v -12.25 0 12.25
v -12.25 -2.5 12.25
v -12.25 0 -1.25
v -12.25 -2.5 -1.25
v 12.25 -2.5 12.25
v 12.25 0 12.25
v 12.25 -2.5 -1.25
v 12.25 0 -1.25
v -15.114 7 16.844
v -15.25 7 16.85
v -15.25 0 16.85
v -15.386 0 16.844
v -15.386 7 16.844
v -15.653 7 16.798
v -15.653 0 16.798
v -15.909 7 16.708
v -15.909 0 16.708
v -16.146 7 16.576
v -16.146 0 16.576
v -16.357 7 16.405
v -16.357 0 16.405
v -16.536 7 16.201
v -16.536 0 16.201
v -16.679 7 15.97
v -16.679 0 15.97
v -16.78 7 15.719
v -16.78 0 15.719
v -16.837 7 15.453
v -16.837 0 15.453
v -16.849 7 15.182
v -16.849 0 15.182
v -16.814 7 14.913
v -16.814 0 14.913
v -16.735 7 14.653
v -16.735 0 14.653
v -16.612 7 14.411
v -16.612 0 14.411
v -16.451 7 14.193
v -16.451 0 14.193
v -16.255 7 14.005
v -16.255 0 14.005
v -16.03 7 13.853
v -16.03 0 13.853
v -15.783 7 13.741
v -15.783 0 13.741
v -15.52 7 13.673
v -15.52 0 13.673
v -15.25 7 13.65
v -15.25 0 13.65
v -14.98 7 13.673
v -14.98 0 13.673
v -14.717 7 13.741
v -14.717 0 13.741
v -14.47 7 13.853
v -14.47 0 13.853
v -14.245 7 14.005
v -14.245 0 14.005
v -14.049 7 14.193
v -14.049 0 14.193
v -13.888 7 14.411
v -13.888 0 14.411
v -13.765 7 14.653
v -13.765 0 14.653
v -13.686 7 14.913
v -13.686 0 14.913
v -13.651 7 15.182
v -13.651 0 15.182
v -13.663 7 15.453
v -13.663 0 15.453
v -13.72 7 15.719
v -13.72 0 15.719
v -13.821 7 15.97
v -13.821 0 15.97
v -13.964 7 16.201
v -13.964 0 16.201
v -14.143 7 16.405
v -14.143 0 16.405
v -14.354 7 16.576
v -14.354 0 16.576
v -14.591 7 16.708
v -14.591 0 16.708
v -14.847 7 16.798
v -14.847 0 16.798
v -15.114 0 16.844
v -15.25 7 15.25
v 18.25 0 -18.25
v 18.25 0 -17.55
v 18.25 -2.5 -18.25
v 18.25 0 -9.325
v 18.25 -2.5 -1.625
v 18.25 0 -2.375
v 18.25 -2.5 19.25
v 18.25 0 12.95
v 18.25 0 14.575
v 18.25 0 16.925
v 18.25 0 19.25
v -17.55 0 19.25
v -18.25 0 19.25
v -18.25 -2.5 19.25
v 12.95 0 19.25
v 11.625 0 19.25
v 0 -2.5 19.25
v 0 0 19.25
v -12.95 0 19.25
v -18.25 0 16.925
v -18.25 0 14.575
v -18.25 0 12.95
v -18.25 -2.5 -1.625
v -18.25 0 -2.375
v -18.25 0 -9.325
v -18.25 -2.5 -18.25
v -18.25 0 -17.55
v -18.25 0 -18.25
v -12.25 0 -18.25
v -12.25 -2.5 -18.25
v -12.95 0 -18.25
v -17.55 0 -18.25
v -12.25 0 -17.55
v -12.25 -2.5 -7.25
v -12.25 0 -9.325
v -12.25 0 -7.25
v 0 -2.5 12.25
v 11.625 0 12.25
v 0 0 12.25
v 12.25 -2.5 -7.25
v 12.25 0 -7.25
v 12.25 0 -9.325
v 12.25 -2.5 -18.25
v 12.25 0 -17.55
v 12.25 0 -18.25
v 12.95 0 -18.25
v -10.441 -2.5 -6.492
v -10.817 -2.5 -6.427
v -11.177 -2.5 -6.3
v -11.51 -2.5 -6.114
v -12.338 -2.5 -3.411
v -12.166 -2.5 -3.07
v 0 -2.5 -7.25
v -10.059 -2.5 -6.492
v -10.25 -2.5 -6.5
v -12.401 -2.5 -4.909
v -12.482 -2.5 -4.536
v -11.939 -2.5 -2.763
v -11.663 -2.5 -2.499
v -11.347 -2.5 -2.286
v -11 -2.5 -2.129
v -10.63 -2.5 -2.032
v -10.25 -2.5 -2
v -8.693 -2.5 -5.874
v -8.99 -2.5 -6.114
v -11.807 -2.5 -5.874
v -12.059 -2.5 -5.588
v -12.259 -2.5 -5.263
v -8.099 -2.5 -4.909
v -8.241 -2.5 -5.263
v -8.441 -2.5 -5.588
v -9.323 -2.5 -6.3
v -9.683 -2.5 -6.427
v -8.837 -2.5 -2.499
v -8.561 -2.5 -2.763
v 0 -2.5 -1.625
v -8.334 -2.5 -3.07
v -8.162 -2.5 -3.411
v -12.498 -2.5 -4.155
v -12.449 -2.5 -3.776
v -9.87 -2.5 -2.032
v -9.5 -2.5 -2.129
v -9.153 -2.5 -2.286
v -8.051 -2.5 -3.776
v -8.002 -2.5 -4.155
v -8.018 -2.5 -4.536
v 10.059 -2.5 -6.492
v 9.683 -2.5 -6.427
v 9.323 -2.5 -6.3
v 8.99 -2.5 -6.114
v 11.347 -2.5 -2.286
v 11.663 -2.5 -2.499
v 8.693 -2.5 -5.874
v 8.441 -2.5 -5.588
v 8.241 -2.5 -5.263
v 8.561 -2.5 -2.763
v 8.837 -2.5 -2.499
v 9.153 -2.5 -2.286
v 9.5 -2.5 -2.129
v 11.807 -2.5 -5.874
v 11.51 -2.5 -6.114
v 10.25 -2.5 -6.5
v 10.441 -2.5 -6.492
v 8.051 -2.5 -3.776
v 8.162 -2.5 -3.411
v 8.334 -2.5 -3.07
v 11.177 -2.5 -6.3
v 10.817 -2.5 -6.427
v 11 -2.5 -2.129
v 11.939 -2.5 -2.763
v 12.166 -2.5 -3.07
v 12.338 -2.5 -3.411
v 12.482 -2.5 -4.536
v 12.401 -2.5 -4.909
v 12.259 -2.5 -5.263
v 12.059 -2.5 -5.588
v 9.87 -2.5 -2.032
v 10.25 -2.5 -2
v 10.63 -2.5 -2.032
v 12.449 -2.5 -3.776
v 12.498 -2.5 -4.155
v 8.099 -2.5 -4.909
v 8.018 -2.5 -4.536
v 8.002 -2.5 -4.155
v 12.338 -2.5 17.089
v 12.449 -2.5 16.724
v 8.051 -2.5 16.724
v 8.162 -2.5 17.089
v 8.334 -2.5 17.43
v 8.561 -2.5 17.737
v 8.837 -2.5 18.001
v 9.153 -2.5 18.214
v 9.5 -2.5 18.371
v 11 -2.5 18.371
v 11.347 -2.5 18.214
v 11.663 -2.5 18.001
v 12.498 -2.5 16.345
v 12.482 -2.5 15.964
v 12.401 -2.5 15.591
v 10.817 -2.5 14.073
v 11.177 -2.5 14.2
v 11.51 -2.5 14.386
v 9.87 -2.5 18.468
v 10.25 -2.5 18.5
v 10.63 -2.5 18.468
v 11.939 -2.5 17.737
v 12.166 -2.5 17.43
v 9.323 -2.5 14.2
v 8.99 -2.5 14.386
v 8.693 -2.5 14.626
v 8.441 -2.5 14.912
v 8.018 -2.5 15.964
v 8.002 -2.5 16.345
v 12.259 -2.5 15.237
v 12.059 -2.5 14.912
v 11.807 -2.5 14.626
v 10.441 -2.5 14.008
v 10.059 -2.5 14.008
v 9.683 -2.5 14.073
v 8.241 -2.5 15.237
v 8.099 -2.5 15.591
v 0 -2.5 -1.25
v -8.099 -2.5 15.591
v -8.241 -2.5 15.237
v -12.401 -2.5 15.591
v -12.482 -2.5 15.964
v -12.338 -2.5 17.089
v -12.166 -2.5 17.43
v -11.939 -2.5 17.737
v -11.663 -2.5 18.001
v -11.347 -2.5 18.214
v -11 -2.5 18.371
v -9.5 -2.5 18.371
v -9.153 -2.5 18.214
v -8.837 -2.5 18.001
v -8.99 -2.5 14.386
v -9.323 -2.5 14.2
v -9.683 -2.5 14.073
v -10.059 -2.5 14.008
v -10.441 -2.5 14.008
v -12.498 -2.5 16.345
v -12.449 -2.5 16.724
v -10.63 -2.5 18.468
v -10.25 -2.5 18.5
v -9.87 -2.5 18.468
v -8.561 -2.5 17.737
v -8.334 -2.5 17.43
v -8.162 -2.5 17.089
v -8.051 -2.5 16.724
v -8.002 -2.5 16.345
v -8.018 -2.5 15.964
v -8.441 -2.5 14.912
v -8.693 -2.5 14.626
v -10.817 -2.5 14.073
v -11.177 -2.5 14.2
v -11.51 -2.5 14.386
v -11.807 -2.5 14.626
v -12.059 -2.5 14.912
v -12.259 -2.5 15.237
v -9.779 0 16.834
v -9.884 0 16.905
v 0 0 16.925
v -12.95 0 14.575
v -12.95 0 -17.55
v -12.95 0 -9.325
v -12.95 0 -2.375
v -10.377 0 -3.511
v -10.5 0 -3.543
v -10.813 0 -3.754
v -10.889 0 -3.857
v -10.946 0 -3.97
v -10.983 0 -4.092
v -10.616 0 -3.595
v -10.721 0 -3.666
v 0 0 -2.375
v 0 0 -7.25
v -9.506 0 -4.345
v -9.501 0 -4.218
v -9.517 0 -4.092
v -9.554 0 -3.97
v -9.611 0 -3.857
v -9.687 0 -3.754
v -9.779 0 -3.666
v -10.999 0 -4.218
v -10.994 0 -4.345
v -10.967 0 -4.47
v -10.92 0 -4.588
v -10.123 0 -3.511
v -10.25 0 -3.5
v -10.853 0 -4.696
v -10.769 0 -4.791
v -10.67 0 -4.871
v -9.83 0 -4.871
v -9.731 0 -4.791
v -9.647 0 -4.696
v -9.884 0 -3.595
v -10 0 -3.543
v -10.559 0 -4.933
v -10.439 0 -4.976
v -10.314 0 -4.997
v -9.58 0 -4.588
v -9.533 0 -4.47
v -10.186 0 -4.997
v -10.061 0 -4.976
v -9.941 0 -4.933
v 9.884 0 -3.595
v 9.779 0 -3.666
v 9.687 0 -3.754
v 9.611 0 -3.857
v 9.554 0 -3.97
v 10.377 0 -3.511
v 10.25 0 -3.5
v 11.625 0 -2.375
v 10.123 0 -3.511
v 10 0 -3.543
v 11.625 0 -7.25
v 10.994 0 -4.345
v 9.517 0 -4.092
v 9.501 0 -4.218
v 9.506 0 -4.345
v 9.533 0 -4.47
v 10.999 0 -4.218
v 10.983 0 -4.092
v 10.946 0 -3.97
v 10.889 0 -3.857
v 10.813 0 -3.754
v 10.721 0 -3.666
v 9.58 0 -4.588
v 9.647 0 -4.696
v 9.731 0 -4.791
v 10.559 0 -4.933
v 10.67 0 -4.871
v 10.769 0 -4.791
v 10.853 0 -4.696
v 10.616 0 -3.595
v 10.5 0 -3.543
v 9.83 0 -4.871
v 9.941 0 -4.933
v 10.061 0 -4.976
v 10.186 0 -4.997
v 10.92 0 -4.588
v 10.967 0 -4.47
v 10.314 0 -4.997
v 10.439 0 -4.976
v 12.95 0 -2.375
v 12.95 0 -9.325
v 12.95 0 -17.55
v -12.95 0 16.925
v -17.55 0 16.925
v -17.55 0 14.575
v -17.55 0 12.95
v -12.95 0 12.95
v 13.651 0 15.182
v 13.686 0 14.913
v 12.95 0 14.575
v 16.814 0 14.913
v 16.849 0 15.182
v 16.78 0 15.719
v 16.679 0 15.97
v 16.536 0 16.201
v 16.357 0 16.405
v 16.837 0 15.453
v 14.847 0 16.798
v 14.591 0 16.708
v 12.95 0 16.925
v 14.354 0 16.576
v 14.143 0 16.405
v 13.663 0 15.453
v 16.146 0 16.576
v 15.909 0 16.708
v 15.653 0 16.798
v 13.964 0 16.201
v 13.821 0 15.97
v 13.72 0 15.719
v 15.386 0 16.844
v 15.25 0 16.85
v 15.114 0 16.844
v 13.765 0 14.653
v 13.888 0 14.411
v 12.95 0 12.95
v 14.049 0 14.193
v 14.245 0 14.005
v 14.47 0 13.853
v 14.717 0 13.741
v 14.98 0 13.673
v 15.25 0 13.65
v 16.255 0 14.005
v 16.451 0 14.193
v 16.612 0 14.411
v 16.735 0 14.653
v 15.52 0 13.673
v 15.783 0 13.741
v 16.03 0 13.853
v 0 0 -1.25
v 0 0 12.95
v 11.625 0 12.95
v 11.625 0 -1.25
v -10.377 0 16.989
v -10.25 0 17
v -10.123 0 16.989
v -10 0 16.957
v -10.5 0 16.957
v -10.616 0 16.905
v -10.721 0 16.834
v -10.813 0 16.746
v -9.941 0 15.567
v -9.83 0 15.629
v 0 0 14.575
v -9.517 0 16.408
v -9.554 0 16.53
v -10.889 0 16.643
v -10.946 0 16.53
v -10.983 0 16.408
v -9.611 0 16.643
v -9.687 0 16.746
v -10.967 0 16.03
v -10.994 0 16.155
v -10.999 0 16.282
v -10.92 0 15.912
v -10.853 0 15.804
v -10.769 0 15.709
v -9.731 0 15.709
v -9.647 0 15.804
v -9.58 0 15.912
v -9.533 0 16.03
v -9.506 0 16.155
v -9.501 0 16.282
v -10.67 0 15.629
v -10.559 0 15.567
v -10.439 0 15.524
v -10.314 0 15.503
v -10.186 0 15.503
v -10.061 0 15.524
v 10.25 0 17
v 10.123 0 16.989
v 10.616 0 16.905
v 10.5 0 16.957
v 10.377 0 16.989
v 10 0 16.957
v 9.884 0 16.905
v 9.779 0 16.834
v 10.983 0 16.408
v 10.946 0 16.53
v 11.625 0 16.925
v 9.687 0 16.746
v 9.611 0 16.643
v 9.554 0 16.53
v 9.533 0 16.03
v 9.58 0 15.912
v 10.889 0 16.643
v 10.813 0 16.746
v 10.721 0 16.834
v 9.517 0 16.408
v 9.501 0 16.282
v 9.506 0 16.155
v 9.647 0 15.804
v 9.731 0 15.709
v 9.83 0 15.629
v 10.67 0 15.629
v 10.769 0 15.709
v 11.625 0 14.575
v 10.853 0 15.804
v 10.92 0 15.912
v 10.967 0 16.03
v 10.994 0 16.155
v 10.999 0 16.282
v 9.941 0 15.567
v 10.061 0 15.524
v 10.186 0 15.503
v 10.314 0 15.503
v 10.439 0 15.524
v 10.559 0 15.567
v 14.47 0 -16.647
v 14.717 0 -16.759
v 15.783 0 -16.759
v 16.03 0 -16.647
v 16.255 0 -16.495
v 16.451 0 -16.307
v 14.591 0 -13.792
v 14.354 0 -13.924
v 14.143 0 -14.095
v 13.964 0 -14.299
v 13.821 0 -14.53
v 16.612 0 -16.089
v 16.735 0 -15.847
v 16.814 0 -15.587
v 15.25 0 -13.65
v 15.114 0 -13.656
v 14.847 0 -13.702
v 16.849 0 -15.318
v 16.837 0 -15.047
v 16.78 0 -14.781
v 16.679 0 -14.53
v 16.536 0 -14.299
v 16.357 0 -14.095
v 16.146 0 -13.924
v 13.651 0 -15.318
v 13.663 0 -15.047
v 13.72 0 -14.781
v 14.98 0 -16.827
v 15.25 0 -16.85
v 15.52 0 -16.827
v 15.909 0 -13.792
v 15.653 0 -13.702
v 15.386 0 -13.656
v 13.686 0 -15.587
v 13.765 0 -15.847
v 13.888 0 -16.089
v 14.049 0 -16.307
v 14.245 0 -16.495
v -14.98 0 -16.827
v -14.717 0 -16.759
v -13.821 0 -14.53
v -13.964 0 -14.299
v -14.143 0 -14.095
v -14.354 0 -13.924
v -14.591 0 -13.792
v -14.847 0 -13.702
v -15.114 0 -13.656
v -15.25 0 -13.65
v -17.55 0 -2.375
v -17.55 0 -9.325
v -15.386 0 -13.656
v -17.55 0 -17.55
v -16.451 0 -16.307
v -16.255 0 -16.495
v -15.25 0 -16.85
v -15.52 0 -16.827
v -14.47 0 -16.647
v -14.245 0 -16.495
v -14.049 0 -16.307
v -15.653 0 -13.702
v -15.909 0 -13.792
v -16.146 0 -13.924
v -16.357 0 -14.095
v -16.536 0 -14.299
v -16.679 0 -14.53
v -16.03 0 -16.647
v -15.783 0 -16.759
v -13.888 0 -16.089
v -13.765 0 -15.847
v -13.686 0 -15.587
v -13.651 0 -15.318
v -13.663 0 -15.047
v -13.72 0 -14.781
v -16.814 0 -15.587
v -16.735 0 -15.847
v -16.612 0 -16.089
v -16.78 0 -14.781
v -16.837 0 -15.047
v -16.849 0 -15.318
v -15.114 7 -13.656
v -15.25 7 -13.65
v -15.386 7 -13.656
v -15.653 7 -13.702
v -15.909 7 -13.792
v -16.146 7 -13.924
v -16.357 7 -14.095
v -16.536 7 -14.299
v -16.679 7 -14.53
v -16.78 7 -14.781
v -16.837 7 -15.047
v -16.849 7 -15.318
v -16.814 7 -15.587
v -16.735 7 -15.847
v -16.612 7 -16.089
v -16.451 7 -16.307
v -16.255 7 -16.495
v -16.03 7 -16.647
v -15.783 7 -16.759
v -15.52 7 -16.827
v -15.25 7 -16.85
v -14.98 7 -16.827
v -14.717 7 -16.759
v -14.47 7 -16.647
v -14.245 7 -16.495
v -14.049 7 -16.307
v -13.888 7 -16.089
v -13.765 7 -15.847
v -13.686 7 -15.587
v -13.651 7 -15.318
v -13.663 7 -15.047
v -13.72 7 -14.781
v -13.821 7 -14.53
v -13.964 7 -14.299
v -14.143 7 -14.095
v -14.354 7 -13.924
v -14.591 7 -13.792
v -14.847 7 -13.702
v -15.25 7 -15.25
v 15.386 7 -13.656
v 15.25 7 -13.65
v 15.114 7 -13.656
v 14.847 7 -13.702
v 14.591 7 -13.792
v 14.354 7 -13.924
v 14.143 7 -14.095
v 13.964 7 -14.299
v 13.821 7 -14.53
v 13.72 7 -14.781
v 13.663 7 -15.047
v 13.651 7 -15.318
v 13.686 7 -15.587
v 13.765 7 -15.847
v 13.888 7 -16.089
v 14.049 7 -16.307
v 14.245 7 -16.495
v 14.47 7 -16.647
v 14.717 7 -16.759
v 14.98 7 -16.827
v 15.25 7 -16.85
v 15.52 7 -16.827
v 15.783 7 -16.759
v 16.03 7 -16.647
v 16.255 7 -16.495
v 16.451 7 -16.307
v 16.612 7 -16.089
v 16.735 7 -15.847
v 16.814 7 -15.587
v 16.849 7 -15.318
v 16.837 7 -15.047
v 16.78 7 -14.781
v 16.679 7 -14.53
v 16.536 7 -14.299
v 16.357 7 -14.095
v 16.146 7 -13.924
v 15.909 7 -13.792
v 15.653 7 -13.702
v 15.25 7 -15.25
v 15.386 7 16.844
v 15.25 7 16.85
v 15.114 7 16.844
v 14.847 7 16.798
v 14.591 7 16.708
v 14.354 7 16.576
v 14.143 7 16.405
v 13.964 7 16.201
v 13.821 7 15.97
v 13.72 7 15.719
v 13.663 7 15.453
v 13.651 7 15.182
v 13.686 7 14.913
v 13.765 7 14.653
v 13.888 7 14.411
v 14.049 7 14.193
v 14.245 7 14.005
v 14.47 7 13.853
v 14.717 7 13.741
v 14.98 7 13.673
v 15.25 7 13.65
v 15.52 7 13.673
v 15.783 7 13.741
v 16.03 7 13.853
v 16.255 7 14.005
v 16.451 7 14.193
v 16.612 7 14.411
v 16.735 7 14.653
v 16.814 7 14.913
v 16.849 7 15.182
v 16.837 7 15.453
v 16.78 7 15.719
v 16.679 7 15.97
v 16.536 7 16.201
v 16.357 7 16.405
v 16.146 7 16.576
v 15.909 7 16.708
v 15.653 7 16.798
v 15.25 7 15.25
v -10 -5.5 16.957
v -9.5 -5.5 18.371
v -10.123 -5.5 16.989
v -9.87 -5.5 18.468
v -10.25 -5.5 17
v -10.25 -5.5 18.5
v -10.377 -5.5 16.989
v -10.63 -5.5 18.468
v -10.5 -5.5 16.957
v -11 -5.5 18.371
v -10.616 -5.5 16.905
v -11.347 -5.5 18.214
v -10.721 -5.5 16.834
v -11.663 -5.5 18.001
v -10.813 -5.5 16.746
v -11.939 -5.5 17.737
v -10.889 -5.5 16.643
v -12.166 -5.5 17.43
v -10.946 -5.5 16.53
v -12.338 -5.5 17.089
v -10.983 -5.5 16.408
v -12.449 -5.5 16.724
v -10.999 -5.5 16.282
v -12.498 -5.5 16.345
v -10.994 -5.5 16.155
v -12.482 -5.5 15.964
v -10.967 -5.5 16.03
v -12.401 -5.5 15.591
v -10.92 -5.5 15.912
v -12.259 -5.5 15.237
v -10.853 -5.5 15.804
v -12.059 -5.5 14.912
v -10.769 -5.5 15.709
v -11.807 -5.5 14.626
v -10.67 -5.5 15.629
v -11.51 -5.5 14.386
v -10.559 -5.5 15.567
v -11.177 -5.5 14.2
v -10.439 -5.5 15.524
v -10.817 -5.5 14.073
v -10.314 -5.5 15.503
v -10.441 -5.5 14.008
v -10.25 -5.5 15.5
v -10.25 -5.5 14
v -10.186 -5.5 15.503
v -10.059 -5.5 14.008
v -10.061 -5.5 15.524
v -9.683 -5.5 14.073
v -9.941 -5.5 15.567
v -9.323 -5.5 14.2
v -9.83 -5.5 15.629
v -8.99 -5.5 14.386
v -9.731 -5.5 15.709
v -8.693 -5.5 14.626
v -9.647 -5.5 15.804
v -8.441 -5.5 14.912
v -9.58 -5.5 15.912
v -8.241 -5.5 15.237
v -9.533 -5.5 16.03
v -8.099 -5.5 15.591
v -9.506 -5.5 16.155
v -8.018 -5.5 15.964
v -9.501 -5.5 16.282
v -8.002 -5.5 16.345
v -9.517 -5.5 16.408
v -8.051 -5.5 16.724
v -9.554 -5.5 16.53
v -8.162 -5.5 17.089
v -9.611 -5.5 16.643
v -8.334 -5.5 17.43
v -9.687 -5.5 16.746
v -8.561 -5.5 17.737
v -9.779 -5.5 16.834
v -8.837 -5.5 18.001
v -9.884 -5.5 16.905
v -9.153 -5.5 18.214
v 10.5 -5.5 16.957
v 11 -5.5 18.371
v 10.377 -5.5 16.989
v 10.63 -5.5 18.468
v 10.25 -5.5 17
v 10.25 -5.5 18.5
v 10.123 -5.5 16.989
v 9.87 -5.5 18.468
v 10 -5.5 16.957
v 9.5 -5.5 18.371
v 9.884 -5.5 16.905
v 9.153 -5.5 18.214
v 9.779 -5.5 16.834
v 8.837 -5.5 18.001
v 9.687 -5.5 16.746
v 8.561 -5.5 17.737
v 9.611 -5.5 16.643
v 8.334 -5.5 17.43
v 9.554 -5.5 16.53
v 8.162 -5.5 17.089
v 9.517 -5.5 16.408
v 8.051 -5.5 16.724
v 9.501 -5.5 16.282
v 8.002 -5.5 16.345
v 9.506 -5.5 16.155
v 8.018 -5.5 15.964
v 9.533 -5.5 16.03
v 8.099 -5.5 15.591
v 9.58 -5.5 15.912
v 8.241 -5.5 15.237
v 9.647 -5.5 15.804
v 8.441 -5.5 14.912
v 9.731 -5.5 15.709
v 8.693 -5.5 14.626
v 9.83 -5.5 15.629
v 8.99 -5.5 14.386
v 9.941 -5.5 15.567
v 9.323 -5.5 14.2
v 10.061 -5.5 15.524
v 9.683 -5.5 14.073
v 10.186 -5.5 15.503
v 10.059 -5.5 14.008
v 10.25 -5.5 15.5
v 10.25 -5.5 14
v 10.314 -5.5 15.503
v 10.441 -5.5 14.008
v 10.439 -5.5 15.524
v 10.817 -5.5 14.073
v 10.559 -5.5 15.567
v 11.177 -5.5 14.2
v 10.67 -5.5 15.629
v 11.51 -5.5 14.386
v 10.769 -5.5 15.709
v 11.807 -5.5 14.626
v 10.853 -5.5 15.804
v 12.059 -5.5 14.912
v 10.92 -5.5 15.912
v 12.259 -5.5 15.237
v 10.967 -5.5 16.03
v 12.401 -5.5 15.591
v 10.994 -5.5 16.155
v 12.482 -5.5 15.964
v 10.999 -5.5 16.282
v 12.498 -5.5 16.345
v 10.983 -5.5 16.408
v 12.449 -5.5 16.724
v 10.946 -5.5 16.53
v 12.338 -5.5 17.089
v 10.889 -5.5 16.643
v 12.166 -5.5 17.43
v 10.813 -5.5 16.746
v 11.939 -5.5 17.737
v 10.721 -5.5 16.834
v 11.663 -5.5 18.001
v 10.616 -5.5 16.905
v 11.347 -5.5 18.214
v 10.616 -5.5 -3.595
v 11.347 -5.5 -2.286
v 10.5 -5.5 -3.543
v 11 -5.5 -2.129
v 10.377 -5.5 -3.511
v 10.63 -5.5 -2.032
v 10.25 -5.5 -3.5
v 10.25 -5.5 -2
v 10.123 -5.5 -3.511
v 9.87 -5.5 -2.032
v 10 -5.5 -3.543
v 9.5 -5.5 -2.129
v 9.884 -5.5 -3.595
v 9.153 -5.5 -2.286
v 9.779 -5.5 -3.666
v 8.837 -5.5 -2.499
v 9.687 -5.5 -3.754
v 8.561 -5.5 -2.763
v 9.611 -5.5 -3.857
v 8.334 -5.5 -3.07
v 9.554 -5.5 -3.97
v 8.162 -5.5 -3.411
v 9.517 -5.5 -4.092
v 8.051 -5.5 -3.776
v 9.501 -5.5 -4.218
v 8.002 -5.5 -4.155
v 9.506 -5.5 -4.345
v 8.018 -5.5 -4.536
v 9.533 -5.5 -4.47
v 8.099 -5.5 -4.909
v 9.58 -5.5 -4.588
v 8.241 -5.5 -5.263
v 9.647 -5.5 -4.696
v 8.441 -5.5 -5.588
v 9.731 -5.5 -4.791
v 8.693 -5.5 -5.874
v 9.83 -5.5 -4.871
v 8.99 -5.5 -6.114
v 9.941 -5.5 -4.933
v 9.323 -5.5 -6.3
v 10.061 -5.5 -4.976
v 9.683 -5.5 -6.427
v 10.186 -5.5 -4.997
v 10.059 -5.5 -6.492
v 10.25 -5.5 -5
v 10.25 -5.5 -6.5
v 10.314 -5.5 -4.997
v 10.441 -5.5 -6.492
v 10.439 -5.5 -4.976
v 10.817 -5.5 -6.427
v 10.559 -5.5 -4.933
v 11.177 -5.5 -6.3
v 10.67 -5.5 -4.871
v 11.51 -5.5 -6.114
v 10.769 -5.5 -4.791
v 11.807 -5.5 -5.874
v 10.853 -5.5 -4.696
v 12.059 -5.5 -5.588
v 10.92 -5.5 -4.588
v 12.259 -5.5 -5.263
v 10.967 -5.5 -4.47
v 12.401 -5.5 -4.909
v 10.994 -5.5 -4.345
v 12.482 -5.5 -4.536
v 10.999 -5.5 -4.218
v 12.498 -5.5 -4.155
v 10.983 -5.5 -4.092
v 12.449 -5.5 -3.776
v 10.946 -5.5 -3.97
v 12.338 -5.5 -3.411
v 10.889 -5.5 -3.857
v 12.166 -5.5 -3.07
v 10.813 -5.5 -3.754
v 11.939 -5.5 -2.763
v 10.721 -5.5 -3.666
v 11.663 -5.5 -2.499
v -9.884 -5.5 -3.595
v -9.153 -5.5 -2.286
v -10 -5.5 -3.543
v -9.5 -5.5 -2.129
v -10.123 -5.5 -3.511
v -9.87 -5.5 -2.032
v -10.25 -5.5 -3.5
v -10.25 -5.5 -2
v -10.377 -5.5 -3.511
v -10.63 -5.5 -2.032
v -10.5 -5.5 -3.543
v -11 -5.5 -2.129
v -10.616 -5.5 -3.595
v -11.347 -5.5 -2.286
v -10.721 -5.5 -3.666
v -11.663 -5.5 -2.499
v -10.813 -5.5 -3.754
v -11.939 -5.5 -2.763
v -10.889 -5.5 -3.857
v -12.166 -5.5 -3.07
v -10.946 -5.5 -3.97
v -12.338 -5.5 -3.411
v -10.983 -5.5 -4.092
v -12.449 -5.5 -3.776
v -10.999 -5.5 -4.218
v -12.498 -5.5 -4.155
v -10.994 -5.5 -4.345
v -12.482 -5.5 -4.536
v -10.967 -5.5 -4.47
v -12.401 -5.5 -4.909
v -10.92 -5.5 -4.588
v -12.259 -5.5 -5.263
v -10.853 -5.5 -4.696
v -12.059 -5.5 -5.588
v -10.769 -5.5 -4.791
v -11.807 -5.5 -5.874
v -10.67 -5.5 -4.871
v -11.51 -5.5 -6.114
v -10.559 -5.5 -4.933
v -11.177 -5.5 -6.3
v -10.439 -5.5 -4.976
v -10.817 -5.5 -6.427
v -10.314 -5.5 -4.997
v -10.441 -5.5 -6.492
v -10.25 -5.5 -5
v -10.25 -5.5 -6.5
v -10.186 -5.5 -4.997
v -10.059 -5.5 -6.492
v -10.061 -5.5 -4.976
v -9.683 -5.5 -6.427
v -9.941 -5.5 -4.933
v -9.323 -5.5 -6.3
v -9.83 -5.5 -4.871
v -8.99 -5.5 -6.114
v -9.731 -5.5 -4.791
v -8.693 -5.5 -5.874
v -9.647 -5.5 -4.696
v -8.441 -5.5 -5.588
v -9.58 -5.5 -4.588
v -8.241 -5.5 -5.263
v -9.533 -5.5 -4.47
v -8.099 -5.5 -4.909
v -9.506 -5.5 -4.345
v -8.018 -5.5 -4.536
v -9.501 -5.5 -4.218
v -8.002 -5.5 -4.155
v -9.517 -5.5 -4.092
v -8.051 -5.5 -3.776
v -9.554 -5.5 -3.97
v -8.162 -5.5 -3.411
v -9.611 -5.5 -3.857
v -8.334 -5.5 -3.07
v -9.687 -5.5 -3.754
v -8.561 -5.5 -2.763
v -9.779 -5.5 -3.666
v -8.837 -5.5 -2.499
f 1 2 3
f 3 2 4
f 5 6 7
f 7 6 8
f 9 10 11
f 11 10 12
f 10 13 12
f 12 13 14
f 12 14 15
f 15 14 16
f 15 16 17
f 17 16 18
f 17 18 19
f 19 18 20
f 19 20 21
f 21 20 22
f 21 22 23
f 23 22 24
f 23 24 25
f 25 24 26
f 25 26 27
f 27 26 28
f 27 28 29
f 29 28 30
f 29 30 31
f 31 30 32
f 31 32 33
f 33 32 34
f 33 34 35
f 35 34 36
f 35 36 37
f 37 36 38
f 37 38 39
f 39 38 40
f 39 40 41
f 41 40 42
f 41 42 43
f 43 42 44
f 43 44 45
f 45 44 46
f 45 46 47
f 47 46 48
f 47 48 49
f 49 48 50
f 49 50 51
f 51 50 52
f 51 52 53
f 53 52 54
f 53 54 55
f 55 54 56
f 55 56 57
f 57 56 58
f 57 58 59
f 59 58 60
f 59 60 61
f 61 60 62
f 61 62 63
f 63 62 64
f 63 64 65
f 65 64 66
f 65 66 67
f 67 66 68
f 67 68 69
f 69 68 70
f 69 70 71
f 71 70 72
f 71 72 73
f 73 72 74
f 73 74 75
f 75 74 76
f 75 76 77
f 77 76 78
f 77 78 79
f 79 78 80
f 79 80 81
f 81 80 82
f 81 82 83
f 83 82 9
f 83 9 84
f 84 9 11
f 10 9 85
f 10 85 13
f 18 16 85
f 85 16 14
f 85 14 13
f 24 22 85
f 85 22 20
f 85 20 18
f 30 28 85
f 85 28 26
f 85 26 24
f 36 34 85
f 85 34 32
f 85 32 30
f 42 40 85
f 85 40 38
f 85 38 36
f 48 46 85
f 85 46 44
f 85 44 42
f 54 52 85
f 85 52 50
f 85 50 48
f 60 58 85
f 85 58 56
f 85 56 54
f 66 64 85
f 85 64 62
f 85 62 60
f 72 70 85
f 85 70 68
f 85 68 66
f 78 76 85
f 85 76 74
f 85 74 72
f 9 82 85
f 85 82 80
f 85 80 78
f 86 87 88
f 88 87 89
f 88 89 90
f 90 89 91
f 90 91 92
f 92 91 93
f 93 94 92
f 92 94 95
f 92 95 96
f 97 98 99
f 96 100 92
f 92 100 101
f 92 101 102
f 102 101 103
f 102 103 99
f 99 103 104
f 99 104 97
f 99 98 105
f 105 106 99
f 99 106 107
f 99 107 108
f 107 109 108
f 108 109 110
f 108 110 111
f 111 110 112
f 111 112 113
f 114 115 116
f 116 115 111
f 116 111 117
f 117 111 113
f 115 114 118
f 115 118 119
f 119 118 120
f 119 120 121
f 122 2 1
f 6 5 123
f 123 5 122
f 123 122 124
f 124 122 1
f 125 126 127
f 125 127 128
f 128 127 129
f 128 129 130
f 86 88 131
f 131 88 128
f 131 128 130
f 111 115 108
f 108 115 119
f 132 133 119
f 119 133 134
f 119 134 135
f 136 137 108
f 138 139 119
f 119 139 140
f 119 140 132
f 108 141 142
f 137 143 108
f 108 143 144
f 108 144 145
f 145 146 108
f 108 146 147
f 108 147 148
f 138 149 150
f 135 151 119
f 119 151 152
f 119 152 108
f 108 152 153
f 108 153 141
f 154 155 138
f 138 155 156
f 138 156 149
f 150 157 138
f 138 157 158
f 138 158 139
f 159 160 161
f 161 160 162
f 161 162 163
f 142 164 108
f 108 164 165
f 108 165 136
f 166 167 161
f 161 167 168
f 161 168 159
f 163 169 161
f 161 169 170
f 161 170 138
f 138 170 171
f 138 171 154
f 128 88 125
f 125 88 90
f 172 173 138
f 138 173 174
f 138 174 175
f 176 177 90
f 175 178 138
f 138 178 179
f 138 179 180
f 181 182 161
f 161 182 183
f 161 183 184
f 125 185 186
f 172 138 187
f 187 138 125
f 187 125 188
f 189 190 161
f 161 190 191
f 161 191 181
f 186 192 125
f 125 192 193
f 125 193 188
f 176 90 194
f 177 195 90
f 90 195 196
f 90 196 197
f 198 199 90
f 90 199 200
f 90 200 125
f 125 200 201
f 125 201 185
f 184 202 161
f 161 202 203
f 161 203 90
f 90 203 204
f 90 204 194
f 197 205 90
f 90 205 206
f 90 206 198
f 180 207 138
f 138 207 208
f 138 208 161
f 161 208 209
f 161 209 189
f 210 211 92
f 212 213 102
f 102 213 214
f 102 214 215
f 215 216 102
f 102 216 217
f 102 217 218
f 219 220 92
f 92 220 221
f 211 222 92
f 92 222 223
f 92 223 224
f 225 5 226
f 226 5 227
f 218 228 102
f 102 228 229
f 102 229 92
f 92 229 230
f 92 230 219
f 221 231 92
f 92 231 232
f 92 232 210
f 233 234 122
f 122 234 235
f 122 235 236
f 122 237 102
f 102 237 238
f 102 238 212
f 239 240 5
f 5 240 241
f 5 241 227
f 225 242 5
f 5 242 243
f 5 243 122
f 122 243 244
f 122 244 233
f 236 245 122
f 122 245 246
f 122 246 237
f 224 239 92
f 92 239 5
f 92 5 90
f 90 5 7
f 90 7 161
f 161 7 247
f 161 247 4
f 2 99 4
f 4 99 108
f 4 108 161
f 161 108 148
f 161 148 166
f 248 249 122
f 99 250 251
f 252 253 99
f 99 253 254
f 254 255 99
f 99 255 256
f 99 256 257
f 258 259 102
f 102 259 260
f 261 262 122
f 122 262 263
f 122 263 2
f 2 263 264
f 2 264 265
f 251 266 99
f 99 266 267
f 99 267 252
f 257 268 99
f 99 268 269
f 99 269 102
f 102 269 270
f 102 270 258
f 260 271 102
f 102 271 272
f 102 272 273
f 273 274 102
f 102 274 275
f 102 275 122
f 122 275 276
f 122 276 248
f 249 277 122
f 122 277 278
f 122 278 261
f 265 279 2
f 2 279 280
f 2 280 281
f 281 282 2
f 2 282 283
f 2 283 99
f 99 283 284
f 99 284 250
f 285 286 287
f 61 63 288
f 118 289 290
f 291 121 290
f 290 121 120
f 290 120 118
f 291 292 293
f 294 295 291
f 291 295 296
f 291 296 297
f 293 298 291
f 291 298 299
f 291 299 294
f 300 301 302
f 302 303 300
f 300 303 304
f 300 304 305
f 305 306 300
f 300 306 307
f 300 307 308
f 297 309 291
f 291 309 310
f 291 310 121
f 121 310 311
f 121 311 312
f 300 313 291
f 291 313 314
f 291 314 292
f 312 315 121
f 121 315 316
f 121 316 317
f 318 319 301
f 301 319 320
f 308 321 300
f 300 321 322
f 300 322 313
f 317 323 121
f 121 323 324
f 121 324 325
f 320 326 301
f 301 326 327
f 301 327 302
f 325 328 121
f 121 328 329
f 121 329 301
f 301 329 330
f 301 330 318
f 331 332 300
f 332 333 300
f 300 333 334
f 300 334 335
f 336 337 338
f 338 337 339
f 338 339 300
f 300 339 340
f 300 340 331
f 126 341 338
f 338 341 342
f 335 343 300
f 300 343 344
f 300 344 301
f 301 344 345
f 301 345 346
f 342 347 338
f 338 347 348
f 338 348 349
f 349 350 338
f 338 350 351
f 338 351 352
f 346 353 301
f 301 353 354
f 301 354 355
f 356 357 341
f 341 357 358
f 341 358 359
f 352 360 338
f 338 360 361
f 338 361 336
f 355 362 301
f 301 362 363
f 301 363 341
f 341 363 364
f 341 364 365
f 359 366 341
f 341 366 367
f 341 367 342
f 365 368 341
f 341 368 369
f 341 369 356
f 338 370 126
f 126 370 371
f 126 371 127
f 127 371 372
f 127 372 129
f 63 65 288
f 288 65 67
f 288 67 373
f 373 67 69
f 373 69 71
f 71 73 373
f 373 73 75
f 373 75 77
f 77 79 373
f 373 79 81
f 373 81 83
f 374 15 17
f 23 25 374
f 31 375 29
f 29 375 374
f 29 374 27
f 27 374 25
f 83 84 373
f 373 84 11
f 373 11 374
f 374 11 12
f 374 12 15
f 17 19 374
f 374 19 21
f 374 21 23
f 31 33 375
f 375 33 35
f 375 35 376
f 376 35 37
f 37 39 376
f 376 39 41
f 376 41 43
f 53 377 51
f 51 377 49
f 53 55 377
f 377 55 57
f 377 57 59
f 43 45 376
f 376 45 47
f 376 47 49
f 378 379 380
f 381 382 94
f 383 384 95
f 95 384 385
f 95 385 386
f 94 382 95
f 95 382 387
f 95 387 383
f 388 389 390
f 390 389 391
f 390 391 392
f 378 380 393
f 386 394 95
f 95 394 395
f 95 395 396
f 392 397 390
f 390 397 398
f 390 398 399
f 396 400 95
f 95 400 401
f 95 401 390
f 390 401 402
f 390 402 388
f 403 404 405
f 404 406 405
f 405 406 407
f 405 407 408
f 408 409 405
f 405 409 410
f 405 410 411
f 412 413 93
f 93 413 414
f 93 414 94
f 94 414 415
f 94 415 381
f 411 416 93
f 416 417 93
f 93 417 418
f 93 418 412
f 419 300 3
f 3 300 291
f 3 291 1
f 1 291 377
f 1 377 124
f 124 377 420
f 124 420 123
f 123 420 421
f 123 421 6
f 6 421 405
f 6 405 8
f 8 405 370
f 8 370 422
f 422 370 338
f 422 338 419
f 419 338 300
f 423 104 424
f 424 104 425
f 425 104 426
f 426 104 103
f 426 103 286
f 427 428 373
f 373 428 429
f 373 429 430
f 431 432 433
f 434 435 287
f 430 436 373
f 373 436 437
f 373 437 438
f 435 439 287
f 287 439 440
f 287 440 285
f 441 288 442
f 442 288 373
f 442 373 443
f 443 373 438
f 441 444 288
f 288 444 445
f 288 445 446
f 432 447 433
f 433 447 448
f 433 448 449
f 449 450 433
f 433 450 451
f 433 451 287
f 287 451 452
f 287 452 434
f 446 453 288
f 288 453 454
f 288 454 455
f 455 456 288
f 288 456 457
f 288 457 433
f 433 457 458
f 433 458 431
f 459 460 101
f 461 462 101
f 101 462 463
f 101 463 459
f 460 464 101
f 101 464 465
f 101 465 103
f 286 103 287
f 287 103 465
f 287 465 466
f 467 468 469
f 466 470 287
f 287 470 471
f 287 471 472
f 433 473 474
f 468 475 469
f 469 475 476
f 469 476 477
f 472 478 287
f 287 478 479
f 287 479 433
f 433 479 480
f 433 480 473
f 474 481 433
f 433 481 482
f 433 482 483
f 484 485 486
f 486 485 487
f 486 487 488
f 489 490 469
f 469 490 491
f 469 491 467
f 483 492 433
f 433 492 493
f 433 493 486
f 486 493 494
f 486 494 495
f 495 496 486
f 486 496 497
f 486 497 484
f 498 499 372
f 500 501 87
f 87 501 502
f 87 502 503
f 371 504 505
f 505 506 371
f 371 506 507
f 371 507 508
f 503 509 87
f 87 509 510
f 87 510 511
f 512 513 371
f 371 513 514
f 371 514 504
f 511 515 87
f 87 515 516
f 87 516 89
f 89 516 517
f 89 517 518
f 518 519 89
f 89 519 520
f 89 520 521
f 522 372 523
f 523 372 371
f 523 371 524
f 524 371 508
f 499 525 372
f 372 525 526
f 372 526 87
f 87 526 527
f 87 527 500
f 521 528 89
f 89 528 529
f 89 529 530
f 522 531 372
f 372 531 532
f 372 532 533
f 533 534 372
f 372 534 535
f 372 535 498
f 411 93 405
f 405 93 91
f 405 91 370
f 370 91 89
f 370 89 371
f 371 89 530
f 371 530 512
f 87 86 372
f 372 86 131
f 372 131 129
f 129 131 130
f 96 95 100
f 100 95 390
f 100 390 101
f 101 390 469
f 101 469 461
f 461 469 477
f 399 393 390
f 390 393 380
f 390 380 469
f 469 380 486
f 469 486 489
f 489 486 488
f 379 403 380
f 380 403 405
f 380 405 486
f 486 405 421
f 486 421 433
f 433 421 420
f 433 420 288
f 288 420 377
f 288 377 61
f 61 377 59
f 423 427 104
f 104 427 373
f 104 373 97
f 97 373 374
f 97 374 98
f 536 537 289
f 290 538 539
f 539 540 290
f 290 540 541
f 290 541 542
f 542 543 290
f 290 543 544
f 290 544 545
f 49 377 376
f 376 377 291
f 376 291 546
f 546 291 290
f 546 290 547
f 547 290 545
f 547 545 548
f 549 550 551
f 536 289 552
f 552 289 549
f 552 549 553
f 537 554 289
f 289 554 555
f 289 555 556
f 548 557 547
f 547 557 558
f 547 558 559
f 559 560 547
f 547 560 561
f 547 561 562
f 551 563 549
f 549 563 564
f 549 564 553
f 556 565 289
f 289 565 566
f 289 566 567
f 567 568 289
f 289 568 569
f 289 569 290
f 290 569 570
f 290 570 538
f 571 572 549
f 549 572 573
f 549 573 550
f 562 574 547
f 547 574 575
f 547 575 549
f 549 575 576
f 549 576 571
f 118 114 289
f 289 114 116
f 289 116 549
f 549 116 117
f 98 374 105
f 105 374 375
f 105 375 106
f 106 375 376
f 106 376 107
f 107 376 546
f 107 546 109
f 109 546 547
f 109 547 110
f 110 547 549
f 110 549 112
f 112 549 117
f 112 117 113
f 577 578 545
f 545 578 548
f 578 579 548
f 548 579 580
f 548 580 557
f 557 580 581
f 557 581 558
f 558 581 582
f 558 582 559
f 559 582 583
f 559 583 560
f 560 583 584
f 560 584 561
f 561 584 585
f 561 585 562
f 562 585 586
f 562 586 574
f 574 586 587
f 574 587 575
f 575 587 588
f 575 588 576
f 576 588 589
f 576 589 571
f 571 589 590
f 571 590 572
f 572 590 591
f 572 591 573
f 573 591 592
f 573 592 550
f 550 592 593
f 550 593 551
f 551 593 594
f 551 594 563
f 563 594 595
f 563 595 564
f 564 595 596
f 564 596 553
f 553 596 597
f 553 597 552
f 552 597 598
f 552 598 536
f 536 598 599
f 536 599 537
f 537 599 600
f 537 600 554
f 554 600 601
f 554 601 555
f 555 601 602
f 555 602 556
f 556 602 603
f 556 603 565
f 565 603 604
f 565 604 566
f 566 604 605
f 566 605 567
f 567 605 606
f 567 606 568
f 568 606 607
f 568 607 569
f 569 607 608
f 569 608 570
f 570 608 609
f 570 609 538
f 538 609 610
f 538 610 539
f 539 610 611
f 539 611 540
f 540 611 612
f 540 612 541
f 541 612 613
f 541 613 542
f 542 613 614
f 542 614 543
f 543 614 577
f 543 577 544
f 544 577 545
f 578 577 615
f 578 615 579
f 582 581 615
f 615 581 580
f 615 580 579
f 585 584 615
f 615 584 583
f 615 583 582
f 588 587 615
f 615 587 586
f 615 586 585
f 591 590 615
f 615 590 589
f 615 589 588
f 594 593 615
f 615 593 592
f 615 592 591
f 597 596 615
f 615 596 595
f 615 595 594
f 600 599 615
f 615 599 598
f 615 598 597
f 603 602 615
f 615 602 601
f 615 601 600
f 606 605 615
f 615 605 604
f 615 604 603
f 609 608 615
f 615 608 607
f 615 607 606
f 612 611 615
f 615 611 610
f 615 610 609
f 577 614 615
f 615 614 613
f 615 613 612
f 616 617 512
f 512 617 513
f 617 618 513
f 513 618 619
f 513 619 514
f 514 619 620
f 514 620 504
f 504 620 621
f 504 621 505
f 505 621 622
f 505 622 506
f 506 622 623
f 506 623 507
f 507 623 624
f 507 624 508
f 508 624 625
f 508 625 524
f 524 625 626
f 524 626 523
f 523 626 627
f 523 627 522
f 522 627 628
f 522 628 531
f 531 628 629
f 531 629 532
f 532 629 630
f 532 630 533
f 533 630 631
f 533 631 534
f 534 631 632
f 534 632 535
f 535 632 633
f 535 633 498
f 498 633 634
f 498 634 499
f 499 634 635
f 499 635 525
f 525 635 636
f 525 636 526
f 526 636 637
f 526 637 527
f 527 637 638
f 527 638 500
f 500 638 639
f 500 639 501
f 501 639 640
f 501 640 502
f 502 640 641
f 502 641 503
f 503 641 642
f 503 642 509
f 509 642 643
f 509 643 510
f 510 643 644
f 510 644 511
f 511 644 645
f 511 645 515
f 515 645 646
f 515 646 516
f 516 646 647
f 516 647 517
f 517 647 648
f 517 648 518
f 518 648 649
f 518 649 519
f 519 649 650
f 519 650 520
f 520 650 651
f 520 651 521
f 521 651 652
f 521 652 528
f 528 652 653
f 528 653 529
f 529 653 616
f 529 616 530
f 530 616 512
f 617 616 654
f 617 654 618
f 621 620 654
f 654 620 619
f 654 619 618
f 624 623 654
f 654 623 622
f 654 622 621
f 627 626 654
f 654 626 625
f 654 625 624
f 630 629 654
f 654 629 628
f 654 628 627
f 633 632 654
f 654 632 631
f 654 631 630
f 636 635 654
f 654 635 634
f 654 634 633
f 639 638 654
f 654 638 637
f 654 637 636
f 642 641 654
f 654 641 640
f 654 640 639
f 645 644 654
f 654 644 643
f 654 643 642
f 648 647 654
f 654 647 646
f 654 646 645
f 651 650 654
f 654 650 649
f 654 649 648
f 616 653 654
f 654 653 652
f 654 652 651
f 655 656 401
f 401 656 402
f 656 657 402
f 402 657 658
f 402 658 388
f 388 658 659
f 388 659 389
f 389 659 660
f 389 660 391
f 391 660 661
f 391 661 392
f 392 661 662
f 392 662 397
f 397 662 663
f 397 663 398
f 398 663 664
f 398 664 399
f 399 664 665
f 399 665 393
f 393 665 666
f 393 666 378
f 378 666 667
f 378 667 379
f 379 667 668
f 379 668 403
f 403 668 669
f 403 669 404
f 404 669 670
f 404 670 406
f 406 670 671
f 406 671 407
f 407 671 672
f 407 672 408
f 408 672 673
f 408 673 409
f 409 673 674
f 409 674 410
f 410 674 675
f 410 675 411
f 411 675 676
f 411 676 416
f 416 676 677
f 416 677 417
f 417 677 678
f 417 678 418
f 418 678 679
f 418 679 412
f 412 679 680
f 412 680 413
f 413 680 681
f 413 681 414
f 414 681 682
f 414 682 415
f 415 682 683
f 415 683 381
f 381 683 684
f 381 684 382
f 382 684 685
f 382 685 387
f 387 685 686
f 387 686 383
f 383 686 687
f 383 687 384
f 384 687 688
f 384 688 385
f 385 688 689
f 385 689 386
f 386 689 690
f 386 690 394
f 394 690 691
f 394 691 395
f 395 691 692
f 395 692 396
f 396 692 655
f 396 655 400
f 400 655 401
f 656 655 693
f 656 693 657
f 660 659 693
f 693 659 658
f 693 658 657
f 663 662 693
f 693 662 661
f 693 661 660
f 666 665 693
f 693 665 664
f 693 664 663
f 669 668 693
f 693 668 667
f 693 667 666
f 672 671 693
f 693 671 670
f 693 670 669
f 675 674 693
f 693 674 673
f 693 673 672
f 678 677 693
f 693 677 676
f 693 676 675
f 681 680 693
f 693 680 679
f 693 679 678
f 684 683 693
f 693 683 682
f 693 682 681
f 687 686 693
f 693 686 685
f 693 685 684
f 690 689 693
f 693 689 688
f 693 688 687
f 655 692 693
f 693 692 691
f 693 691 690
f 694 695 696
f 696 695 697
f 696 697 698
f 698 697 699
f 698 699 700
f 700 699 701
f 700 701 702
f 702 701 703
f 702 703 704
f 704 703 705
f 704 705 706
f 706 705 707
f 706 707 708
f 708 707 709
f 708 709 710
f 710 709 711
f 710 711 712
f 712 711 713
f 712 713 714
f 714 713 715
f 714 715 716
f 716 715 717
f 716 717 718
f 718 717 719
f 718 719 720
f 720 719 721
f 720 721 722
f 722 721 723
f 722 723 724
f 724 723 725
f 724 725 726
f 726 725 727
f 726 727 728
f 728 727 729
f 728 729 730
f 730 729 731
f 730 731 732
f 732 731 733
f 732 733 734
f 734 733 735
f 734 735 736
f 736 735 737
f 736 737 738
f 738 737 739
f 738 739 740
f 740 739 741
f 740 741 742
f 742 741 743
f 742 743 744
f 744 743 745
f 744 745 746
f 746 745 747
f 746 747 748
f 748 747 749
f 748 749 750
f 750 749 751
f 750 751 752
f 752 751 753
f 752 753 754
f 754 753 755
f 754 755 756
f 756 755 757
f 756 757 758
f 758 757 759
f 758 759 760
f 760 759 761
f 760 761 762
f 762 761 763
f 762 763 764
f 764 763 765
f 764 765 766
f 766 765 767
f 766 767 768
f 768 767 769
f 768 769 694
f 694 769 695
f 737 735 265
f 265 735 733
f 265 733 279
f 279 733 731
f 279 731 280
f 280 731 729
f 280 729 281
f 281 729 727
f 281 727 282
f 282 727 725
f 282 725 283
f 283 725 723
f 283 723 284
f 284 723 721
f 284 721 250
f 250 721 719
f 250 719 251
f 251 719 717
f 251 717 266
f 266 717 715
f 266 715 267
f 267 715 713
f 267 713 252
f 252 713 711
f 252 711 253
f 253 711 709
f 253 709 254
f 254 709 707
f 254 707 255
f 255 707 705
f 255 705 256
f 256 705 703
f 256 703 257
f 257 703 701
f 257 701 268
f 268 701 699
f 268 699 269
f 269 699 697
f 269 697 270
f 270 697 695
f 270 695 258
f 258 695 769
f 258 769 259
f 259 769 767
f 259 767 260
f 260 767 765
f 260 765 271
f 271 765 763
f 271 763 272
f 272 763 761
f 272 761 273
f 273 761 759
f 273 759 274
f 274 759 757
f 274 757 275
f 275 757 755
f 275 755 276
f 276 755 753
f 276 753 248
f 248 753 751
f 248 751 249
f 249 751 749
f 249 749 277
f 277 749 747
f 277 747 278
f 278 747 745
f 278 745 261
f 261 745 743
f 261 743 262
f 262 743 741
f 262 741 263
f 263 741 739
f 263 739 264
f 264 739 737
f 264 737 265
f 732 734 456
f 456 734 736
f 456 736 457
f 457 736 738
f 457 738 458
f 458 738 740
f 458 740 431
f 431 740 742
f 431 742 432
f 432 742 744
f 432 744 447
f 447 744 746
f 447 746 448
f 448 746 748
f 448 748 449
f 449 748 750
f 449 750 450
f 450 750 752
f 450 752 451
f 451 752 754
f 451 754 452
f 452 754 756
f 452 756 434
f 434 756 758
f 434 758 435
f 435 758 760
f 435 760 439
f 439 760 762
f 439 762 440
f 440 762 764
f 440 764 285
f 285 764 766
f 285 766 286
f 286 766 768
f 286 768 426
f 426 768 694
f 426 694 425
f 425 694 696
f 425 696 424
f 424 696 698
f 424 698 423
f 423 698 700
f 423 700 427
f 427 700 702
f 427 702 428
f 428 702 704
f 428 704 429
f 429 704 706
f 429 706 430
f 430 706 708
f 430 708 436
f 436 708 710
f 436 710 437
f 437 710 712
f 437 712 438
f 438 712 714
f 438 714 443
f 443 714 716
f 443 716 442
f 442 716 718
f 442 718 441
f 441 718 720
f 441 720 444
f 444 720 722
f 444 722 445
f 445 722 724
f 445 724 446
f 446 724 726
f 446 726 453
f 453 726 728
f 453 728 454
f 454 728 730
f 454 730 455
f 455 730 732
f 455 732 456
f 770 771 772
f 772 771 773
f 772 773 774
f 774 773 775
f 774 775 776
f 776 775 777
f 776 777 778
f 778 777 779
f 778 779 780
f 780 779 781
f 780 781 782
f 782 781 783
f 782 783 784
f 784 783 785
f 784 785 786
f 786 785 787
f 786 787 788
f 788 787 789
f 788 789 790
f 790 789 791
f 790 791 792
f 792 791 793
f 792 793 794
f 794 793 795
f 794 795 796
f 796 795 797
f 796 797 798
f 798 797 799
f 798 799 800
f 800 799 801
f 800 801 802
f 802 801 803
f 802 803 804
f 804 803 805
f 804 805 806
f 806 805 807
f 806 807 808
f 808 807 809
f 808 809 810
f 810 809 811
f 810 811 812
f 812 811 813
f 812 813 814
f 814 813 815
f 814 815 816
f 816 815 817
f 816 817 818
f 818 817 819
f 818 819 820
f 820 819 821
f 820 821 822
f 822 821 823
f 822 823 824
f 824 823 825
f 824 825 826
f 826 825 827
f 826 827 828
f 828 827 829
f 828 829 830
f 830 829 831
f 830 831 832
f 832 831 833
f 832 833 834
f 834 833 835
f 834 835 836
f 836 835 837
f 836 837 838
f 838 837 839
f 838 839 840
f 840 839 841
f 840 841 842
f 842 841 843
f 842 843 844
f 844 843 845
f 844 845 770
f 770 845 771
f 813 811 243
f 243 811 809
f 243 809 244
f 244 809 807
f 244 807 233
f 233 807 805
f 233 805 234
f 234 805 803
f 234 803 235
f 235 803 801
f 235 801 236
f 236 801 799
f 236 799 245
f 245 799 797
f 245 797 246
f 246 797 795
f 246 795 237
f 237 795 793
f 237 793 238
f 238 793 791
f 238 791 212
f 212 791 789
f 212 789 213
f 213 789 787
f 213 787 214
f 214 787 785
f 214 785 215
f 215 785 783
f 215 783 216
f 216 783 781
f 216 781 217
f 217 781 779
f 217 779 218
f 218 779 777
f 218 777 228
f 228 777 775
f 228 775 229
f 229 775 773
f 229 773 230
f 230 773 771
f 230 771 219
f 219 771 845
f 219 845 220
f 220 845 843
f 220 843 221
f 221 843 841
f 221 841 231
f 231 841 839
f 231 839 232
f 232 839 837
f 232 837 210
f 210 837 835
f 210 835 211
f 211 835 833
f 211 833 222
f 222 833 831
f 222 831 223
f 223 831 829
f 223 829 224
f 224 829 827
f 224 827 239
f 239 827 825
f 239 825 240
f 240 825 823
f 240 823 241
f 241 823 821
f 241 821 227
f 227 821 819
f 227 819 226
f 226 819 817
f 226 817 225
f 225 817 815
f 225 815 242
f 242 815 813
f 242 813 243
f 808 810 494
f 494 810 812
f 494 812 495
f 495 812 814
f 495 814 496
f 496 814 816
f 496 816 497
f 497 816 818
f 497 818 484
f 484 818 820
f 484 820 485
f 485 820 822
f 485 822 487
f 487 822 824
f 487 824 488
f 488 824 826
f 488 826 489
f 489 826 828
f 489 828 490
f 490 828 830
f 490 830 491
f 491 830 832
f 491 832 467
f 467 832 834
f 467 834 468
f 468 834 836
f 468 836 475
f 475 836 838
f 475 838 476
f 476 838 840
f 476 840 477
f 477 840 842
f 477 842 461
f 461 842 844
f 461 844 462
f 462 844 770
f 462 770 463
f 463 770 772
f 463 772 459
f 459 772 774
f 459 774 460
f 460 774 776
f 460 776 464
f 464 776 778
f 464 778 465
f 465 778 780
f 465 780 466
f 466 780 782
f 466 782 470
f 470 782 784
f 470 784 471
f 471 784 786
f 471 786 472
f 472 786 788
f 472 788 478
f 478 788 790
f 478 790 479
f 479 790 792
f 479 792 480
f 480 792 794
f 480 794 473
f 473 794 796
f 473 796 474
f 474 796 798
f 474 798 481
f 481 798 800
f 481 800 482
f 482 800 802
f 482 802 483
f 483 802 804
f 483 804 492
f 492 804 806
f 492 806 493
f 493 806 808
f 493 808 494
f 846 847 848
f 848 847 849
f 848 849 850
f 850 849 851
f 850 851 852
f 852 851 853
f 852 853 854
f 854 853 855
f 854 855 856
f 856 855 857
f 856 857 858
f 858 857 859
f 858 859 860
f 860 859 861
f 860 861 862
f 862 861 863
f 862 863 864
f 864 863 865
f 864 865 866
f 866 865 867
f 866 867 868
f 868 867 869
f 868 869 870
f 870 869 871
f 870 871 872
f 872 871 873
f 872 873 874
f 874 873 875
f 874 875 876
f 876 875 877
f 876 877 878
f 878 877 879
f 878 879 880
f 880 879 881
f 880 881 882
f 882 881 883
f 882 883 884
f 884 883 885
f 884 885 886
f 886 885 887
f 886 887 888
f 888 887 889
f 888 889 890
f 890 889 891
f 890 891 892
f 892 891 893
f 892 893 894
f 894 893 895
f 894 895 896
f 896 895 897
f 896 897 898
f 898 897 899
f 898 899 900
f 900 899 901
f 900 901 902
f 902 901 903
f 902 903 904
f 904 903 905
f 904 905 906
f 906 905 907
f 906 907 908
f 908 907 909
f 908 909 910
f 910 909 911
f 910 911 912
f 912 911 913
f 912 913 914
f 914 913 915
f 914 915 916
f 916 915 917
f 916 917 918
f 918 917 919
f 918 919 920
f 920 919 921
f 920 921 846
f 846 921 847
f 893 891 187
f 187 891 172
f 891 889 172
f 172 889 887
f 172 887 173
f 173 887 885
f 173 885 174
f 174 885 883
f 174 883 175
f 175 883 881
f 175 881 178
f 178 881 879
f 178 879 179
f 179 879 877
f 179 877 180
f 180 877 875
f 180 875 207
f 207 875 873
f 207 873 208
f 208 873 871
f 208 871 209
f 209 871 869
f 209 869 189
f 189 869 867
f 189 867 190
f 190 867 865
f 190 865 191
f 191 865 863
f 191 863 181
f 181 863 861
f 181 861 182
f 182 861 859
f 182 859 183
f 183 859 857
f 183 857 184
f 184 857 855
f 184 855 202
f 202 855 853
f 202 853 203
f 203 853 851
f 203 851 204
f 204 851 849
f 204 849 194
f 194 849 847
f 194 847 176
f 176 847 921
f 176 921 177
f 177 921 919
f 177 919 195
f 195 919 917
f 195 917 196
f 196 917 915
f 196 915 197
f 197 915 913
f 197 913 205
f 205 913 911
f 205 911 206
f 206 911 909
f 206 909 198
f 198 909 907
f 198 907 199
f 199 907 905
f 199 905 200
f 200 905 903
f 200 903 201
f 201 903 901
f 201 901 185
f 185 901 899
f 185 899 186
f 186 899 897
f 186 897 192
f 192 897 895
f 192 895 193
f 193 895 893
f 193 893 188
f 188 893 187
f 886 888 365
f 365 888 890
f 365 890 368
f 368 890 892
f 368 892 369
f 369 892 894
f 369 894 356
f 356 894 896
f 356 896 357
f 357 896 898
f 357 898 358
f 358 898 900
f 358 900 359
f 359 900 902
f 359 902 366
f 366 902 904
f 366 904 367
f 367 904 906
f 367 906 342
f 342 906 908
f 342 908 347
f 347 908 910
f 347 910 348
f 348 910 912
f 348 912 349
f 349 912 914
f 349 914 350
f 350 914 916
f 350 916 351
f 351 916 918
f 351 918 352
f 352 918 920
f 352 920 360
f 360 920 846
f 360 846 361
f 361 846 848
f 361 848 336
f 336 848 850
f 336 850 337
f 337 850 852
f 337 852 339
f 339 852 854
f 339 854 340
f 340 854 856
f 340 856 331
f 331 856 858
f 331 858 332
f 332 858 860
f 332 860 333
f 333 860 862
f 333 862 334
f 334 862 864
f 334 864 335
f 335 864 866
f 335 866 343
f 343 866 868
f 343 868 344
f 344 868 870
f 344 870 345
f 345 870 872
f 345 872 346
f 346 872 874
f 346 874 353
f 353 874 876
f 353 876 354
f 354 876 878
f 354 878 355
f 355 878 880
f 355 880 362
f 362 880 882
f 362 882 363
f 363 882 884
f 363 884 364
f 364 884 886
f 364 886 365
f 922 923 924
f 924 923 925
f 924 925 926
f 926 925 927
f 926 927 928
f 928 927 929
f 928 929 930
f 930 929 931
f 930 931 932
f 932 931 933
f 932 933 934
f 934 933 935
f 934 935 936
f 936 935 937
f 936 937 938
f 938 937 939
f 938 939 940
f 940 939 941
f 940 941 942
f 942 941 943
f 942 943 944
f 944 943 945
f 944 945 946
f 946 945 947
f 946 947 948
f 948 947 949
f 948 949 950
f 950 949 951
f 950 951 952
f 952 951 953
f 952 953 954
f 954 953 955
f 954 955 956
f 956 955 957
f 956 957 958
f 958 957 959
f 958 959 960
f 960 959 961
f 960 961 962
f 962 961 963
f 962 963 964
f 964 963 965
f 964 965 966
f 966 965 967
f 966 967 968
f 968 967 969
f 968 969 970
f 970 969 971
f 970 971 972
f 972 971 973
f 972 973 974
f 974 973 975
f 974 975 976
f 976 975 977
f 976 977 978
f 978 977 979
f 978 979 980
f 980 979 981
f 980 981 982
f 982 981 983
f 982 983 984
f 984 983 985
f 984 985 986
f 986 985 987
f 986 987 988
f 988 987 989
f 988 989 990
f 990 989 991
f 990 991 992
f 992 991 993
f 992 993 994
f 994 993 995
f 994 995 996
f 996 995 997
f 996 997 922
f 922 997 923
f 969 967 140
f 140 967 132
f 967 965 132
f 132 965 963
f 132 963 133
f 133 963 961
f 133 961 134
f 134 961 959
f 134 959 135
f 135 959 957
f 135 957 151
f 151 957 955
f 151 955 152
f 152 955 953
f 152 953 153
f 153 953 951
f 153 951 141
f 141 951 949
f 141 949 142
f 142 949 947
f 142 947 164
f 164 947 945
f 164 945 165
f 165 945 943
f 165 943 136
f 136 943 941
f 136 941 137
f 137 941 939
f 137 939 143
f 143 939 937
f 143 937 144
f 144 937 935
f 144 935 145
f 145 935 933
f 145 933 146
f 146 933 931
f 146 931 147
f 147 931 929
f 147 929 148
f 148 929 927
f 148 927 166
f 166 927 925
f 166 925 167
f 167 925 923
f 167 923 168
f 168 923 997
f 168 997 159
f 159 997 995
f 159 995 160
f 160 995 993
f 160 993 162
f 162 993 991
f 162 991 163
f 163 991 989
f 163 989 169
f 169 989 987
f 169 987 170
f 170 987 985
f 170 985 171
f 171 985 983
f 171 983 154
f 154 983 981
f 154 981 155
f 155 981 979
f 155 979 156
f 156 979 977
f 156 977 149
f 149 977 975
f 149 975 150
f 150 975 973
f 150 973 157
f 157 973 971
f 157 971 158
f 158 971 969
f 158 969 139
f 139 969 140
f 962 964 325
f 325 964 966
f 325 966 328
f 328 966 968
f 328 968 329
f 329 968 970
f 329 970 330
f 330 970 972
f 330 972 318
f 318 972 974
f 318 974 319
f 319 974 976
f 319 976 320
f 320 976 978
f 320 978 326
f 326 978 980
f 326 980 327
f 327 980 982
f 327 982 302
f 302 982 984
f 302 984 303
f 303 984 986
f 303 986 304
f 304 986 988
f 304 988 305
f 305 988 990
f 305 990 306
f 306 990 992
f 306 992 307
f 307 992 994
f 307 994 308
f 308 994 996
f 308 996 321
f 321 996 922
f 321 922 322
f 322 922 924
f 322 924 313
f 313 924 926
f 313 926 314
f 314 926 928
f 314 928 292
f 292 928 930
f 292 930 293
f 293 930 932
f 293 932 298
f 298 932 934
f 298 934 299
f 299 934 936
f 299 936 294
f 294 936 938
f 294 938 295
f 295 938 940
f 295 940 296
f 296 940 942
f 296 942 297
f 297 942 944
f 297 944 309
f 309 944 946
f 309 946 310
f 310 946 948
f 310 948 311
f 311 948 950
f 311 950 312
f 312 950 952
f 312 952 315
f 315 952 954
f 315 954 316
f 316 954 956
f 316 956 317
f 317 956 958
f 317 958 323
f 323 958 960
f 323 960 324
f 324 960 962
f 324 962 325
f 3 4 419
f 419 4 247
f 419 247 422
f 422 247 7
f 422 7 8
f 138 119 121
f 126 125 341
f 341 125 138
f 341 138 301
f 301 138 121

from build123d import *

# Parameters (mm, degrees)
SKETCH1_R             = 1.6
BOSS_EXTRUDE1_DEPTH   = 7
BOSS_EXTRUDE1_2_DEPTH = 7
BOSS_EXTRUDE1_3_DEPTH = 7
BOSS_EXTRUDE1_4_DEPTH = 7
BOSS_EXTRUDE2_DEPTH   = 2.5
SKETCH3_R             = 2.25
SKETCH3_R_2           = 0.75
BOSS_EXTRUDE3_DEPTH   = 3
SKETCH4_W             = 24.5
SKETCH4_H             = 6
BOSS_EXTRUDE4_DEPTH   = 2.5
CUT_EXTRUDE1_START    = -10
SKETCH5_R             = 0.75
CUT_EXTRUDE1_DEPTH    = 10


with BuildPart() as part:
    # Sketch1 → Boss-Extrude1 (new body)
    with BuildSketch(Plane(origin=(0, 0, 0), x_dir=(1, 0, 0), z_dir=(0, 1, 0))):
        with Locations(Location((-15.25, -15.25, 0), (0, 0, 270))):
            Circle(SKETCH1_R)
    extrude(amount=BOSS_EXTRUDE1_DEPTH)



with BuildPart() as body_2:
    # Sketch1 → Boss-Extrude1 2 (new body)
    with BuildSketch(Plane(origin=(0, 0, 0), x_dir=(1, 0, 0), z_dir=(0, 1, 0))):
        with Locations(Location((-15.25, 15.25, 0), (0, 0, 270))):
            Circle(SKETCH1_R)
    extrude(amount=BOSS_EXTRUDE1_2_DEPTH)


with BuildPart() as body_3:
    # Sketch1 → Boss-Extrude1 3 (new body)
    with BuildSketch(Plane(origin=(0, 0, 0), x_dir=(1, 0, 0), z_dir=(0, 1, 0))):
        with Locations(Location((15.25, 15.25, 0), (0, 0, 270))):
            Circle(SKETCH1_R)
    extrude(amount=BOSS_EXTRUDE1_3_DEPTH)


with BuildPart() as body_4:
    # Sketch1 → Boss-Extrude1 4 (new body)
    with BuildSketch(Plane(origin=(0, 0, 0), x_dir=(1, 0, 0), z_dir=(0, 1, 0))):
        with Locations(Location((15.25, -15.25, 0), (0, 0, 270))):
            Circle(SKETCH1_R)
    extrude(amount=BOSS_EXTRUDE1_4_DEPTH)


with BuildPart() as part_1:
    add(part.part)

    add(body_2.part)  # Boss-Extrude2 merges body 2

    add(body_3.part)  # Boss-Extrude2 merges body 3

    add(body_4.part)  # Boss-Extrude2 merges body 4
    # Sketch2 → Boss-Extrude2 (add)
    with BuildSketch(Plane.XZ):
        Polygon((-12.25, 12.25), (12.25, 12.25), (12.25, -18.25), (18.25, -18.25), (18.25, 19.25), (-18.25, 19.25), (-18.25, -18.25), (-12.25, -18.25), align=None)
    extrude(amount=BOSS_EXTRUDE2_DEPTH)

    # Sketch3 → Boss-Extrude3 (add)
    # profile 1 of 4: a face of its own
    with BuildSketch(Plane.XZ.offset(2.5)):
        with Locations(Location((-10.25, 16.25, 0), (0, 0, 90))):
            Circle(SKETCH3_R)
        with Locations(Location((-10.25, 16.25, 0), (0, 0, 270))):
            Circle(SKETCH3_R_2, mode=Mode.SUBTRACT)
    # profile 2 of 4: a face of its own
    with BuildSketch(Plane.XZ.offset(2.5)):
        with Locations(Location((10.25, 16.25, 0), (0, 0, 90))):
            Circle(SKETCH3_R)
        with Locations(Location((10.25, 16.25, 0), (0, 0, 270))):
            Circle(SKETCH3_R_2, mode=Mode.SUBTRACT)
    # profile 3 of 4: a face of its own
    with BuildSketch(Plane.XZ.offset(2.5)):
        with Locations(Location((10.25, -4.25, 0), (0, 0, 27.266044451))):
            Circle(SKETCH3_R)
        with Locations(Location((10.25, -4.25, 0), (0, 0, 270))):
            Circle(SKETCH3_R_2, mode=Mode.SUBTRACT)
    # profile 4 of 4: a face of its own
    with BuildSketch(Plane.XZ.offset(2.5)):
        with Locations(Location((-10.25, -4.25, 0), (0, 0, 152.733955549))):
            Circle(SKETCH3_R)
        with Locations(Location((-10.25, -4.25, 0), (0, 0, 270))):
            Circle(SKETCH3_R_2, mode=Mode.SUBTRACT)
    extrude(amount=BOSS_EXTRUDE3_DEPTH)

    # Sketch4 → Boss-Extrude4 (add)
    with BuildSketch(Plane(origin=(0, -2.5, 0), x_dir=(1, 0, 0), z_dir=(0, 1, 0))):
        with Locations((0, 4.25)):
            Rectangle(SKETCH4_W, SKETCH4_H)
    extrude(amount=BOSS_EXTRUDE4_DEPTH)

    # Sketch5 → Cut-Extrude1 (cut)
    with BuildSketch(Plane.XZ.offset(2.5).offset(CUT_EXTRUDE1_START)):
        with Locations(Location((-10.25, 16.25, 0), (0, 0, 90))):
            Circle(SKETCH5_R)
        with Locations(Location((10.25, 16.25, 0), (0, 0, 90))):
            Circle(SKETCH5_R)
        with Locations(Location((10.25, -4.25, 0), (0, 0, 90))):
            Circle(SKETCH5_R)
        with Locations(Location((-10.25, -4.25, 0), (0, 0, 90))):
            Circle(SKETCH5_R)
    extrude(amount=CUT_EXTRUDE1_DEPTH, mode=Mode.SUBTRACT)


solid = part_1.part
